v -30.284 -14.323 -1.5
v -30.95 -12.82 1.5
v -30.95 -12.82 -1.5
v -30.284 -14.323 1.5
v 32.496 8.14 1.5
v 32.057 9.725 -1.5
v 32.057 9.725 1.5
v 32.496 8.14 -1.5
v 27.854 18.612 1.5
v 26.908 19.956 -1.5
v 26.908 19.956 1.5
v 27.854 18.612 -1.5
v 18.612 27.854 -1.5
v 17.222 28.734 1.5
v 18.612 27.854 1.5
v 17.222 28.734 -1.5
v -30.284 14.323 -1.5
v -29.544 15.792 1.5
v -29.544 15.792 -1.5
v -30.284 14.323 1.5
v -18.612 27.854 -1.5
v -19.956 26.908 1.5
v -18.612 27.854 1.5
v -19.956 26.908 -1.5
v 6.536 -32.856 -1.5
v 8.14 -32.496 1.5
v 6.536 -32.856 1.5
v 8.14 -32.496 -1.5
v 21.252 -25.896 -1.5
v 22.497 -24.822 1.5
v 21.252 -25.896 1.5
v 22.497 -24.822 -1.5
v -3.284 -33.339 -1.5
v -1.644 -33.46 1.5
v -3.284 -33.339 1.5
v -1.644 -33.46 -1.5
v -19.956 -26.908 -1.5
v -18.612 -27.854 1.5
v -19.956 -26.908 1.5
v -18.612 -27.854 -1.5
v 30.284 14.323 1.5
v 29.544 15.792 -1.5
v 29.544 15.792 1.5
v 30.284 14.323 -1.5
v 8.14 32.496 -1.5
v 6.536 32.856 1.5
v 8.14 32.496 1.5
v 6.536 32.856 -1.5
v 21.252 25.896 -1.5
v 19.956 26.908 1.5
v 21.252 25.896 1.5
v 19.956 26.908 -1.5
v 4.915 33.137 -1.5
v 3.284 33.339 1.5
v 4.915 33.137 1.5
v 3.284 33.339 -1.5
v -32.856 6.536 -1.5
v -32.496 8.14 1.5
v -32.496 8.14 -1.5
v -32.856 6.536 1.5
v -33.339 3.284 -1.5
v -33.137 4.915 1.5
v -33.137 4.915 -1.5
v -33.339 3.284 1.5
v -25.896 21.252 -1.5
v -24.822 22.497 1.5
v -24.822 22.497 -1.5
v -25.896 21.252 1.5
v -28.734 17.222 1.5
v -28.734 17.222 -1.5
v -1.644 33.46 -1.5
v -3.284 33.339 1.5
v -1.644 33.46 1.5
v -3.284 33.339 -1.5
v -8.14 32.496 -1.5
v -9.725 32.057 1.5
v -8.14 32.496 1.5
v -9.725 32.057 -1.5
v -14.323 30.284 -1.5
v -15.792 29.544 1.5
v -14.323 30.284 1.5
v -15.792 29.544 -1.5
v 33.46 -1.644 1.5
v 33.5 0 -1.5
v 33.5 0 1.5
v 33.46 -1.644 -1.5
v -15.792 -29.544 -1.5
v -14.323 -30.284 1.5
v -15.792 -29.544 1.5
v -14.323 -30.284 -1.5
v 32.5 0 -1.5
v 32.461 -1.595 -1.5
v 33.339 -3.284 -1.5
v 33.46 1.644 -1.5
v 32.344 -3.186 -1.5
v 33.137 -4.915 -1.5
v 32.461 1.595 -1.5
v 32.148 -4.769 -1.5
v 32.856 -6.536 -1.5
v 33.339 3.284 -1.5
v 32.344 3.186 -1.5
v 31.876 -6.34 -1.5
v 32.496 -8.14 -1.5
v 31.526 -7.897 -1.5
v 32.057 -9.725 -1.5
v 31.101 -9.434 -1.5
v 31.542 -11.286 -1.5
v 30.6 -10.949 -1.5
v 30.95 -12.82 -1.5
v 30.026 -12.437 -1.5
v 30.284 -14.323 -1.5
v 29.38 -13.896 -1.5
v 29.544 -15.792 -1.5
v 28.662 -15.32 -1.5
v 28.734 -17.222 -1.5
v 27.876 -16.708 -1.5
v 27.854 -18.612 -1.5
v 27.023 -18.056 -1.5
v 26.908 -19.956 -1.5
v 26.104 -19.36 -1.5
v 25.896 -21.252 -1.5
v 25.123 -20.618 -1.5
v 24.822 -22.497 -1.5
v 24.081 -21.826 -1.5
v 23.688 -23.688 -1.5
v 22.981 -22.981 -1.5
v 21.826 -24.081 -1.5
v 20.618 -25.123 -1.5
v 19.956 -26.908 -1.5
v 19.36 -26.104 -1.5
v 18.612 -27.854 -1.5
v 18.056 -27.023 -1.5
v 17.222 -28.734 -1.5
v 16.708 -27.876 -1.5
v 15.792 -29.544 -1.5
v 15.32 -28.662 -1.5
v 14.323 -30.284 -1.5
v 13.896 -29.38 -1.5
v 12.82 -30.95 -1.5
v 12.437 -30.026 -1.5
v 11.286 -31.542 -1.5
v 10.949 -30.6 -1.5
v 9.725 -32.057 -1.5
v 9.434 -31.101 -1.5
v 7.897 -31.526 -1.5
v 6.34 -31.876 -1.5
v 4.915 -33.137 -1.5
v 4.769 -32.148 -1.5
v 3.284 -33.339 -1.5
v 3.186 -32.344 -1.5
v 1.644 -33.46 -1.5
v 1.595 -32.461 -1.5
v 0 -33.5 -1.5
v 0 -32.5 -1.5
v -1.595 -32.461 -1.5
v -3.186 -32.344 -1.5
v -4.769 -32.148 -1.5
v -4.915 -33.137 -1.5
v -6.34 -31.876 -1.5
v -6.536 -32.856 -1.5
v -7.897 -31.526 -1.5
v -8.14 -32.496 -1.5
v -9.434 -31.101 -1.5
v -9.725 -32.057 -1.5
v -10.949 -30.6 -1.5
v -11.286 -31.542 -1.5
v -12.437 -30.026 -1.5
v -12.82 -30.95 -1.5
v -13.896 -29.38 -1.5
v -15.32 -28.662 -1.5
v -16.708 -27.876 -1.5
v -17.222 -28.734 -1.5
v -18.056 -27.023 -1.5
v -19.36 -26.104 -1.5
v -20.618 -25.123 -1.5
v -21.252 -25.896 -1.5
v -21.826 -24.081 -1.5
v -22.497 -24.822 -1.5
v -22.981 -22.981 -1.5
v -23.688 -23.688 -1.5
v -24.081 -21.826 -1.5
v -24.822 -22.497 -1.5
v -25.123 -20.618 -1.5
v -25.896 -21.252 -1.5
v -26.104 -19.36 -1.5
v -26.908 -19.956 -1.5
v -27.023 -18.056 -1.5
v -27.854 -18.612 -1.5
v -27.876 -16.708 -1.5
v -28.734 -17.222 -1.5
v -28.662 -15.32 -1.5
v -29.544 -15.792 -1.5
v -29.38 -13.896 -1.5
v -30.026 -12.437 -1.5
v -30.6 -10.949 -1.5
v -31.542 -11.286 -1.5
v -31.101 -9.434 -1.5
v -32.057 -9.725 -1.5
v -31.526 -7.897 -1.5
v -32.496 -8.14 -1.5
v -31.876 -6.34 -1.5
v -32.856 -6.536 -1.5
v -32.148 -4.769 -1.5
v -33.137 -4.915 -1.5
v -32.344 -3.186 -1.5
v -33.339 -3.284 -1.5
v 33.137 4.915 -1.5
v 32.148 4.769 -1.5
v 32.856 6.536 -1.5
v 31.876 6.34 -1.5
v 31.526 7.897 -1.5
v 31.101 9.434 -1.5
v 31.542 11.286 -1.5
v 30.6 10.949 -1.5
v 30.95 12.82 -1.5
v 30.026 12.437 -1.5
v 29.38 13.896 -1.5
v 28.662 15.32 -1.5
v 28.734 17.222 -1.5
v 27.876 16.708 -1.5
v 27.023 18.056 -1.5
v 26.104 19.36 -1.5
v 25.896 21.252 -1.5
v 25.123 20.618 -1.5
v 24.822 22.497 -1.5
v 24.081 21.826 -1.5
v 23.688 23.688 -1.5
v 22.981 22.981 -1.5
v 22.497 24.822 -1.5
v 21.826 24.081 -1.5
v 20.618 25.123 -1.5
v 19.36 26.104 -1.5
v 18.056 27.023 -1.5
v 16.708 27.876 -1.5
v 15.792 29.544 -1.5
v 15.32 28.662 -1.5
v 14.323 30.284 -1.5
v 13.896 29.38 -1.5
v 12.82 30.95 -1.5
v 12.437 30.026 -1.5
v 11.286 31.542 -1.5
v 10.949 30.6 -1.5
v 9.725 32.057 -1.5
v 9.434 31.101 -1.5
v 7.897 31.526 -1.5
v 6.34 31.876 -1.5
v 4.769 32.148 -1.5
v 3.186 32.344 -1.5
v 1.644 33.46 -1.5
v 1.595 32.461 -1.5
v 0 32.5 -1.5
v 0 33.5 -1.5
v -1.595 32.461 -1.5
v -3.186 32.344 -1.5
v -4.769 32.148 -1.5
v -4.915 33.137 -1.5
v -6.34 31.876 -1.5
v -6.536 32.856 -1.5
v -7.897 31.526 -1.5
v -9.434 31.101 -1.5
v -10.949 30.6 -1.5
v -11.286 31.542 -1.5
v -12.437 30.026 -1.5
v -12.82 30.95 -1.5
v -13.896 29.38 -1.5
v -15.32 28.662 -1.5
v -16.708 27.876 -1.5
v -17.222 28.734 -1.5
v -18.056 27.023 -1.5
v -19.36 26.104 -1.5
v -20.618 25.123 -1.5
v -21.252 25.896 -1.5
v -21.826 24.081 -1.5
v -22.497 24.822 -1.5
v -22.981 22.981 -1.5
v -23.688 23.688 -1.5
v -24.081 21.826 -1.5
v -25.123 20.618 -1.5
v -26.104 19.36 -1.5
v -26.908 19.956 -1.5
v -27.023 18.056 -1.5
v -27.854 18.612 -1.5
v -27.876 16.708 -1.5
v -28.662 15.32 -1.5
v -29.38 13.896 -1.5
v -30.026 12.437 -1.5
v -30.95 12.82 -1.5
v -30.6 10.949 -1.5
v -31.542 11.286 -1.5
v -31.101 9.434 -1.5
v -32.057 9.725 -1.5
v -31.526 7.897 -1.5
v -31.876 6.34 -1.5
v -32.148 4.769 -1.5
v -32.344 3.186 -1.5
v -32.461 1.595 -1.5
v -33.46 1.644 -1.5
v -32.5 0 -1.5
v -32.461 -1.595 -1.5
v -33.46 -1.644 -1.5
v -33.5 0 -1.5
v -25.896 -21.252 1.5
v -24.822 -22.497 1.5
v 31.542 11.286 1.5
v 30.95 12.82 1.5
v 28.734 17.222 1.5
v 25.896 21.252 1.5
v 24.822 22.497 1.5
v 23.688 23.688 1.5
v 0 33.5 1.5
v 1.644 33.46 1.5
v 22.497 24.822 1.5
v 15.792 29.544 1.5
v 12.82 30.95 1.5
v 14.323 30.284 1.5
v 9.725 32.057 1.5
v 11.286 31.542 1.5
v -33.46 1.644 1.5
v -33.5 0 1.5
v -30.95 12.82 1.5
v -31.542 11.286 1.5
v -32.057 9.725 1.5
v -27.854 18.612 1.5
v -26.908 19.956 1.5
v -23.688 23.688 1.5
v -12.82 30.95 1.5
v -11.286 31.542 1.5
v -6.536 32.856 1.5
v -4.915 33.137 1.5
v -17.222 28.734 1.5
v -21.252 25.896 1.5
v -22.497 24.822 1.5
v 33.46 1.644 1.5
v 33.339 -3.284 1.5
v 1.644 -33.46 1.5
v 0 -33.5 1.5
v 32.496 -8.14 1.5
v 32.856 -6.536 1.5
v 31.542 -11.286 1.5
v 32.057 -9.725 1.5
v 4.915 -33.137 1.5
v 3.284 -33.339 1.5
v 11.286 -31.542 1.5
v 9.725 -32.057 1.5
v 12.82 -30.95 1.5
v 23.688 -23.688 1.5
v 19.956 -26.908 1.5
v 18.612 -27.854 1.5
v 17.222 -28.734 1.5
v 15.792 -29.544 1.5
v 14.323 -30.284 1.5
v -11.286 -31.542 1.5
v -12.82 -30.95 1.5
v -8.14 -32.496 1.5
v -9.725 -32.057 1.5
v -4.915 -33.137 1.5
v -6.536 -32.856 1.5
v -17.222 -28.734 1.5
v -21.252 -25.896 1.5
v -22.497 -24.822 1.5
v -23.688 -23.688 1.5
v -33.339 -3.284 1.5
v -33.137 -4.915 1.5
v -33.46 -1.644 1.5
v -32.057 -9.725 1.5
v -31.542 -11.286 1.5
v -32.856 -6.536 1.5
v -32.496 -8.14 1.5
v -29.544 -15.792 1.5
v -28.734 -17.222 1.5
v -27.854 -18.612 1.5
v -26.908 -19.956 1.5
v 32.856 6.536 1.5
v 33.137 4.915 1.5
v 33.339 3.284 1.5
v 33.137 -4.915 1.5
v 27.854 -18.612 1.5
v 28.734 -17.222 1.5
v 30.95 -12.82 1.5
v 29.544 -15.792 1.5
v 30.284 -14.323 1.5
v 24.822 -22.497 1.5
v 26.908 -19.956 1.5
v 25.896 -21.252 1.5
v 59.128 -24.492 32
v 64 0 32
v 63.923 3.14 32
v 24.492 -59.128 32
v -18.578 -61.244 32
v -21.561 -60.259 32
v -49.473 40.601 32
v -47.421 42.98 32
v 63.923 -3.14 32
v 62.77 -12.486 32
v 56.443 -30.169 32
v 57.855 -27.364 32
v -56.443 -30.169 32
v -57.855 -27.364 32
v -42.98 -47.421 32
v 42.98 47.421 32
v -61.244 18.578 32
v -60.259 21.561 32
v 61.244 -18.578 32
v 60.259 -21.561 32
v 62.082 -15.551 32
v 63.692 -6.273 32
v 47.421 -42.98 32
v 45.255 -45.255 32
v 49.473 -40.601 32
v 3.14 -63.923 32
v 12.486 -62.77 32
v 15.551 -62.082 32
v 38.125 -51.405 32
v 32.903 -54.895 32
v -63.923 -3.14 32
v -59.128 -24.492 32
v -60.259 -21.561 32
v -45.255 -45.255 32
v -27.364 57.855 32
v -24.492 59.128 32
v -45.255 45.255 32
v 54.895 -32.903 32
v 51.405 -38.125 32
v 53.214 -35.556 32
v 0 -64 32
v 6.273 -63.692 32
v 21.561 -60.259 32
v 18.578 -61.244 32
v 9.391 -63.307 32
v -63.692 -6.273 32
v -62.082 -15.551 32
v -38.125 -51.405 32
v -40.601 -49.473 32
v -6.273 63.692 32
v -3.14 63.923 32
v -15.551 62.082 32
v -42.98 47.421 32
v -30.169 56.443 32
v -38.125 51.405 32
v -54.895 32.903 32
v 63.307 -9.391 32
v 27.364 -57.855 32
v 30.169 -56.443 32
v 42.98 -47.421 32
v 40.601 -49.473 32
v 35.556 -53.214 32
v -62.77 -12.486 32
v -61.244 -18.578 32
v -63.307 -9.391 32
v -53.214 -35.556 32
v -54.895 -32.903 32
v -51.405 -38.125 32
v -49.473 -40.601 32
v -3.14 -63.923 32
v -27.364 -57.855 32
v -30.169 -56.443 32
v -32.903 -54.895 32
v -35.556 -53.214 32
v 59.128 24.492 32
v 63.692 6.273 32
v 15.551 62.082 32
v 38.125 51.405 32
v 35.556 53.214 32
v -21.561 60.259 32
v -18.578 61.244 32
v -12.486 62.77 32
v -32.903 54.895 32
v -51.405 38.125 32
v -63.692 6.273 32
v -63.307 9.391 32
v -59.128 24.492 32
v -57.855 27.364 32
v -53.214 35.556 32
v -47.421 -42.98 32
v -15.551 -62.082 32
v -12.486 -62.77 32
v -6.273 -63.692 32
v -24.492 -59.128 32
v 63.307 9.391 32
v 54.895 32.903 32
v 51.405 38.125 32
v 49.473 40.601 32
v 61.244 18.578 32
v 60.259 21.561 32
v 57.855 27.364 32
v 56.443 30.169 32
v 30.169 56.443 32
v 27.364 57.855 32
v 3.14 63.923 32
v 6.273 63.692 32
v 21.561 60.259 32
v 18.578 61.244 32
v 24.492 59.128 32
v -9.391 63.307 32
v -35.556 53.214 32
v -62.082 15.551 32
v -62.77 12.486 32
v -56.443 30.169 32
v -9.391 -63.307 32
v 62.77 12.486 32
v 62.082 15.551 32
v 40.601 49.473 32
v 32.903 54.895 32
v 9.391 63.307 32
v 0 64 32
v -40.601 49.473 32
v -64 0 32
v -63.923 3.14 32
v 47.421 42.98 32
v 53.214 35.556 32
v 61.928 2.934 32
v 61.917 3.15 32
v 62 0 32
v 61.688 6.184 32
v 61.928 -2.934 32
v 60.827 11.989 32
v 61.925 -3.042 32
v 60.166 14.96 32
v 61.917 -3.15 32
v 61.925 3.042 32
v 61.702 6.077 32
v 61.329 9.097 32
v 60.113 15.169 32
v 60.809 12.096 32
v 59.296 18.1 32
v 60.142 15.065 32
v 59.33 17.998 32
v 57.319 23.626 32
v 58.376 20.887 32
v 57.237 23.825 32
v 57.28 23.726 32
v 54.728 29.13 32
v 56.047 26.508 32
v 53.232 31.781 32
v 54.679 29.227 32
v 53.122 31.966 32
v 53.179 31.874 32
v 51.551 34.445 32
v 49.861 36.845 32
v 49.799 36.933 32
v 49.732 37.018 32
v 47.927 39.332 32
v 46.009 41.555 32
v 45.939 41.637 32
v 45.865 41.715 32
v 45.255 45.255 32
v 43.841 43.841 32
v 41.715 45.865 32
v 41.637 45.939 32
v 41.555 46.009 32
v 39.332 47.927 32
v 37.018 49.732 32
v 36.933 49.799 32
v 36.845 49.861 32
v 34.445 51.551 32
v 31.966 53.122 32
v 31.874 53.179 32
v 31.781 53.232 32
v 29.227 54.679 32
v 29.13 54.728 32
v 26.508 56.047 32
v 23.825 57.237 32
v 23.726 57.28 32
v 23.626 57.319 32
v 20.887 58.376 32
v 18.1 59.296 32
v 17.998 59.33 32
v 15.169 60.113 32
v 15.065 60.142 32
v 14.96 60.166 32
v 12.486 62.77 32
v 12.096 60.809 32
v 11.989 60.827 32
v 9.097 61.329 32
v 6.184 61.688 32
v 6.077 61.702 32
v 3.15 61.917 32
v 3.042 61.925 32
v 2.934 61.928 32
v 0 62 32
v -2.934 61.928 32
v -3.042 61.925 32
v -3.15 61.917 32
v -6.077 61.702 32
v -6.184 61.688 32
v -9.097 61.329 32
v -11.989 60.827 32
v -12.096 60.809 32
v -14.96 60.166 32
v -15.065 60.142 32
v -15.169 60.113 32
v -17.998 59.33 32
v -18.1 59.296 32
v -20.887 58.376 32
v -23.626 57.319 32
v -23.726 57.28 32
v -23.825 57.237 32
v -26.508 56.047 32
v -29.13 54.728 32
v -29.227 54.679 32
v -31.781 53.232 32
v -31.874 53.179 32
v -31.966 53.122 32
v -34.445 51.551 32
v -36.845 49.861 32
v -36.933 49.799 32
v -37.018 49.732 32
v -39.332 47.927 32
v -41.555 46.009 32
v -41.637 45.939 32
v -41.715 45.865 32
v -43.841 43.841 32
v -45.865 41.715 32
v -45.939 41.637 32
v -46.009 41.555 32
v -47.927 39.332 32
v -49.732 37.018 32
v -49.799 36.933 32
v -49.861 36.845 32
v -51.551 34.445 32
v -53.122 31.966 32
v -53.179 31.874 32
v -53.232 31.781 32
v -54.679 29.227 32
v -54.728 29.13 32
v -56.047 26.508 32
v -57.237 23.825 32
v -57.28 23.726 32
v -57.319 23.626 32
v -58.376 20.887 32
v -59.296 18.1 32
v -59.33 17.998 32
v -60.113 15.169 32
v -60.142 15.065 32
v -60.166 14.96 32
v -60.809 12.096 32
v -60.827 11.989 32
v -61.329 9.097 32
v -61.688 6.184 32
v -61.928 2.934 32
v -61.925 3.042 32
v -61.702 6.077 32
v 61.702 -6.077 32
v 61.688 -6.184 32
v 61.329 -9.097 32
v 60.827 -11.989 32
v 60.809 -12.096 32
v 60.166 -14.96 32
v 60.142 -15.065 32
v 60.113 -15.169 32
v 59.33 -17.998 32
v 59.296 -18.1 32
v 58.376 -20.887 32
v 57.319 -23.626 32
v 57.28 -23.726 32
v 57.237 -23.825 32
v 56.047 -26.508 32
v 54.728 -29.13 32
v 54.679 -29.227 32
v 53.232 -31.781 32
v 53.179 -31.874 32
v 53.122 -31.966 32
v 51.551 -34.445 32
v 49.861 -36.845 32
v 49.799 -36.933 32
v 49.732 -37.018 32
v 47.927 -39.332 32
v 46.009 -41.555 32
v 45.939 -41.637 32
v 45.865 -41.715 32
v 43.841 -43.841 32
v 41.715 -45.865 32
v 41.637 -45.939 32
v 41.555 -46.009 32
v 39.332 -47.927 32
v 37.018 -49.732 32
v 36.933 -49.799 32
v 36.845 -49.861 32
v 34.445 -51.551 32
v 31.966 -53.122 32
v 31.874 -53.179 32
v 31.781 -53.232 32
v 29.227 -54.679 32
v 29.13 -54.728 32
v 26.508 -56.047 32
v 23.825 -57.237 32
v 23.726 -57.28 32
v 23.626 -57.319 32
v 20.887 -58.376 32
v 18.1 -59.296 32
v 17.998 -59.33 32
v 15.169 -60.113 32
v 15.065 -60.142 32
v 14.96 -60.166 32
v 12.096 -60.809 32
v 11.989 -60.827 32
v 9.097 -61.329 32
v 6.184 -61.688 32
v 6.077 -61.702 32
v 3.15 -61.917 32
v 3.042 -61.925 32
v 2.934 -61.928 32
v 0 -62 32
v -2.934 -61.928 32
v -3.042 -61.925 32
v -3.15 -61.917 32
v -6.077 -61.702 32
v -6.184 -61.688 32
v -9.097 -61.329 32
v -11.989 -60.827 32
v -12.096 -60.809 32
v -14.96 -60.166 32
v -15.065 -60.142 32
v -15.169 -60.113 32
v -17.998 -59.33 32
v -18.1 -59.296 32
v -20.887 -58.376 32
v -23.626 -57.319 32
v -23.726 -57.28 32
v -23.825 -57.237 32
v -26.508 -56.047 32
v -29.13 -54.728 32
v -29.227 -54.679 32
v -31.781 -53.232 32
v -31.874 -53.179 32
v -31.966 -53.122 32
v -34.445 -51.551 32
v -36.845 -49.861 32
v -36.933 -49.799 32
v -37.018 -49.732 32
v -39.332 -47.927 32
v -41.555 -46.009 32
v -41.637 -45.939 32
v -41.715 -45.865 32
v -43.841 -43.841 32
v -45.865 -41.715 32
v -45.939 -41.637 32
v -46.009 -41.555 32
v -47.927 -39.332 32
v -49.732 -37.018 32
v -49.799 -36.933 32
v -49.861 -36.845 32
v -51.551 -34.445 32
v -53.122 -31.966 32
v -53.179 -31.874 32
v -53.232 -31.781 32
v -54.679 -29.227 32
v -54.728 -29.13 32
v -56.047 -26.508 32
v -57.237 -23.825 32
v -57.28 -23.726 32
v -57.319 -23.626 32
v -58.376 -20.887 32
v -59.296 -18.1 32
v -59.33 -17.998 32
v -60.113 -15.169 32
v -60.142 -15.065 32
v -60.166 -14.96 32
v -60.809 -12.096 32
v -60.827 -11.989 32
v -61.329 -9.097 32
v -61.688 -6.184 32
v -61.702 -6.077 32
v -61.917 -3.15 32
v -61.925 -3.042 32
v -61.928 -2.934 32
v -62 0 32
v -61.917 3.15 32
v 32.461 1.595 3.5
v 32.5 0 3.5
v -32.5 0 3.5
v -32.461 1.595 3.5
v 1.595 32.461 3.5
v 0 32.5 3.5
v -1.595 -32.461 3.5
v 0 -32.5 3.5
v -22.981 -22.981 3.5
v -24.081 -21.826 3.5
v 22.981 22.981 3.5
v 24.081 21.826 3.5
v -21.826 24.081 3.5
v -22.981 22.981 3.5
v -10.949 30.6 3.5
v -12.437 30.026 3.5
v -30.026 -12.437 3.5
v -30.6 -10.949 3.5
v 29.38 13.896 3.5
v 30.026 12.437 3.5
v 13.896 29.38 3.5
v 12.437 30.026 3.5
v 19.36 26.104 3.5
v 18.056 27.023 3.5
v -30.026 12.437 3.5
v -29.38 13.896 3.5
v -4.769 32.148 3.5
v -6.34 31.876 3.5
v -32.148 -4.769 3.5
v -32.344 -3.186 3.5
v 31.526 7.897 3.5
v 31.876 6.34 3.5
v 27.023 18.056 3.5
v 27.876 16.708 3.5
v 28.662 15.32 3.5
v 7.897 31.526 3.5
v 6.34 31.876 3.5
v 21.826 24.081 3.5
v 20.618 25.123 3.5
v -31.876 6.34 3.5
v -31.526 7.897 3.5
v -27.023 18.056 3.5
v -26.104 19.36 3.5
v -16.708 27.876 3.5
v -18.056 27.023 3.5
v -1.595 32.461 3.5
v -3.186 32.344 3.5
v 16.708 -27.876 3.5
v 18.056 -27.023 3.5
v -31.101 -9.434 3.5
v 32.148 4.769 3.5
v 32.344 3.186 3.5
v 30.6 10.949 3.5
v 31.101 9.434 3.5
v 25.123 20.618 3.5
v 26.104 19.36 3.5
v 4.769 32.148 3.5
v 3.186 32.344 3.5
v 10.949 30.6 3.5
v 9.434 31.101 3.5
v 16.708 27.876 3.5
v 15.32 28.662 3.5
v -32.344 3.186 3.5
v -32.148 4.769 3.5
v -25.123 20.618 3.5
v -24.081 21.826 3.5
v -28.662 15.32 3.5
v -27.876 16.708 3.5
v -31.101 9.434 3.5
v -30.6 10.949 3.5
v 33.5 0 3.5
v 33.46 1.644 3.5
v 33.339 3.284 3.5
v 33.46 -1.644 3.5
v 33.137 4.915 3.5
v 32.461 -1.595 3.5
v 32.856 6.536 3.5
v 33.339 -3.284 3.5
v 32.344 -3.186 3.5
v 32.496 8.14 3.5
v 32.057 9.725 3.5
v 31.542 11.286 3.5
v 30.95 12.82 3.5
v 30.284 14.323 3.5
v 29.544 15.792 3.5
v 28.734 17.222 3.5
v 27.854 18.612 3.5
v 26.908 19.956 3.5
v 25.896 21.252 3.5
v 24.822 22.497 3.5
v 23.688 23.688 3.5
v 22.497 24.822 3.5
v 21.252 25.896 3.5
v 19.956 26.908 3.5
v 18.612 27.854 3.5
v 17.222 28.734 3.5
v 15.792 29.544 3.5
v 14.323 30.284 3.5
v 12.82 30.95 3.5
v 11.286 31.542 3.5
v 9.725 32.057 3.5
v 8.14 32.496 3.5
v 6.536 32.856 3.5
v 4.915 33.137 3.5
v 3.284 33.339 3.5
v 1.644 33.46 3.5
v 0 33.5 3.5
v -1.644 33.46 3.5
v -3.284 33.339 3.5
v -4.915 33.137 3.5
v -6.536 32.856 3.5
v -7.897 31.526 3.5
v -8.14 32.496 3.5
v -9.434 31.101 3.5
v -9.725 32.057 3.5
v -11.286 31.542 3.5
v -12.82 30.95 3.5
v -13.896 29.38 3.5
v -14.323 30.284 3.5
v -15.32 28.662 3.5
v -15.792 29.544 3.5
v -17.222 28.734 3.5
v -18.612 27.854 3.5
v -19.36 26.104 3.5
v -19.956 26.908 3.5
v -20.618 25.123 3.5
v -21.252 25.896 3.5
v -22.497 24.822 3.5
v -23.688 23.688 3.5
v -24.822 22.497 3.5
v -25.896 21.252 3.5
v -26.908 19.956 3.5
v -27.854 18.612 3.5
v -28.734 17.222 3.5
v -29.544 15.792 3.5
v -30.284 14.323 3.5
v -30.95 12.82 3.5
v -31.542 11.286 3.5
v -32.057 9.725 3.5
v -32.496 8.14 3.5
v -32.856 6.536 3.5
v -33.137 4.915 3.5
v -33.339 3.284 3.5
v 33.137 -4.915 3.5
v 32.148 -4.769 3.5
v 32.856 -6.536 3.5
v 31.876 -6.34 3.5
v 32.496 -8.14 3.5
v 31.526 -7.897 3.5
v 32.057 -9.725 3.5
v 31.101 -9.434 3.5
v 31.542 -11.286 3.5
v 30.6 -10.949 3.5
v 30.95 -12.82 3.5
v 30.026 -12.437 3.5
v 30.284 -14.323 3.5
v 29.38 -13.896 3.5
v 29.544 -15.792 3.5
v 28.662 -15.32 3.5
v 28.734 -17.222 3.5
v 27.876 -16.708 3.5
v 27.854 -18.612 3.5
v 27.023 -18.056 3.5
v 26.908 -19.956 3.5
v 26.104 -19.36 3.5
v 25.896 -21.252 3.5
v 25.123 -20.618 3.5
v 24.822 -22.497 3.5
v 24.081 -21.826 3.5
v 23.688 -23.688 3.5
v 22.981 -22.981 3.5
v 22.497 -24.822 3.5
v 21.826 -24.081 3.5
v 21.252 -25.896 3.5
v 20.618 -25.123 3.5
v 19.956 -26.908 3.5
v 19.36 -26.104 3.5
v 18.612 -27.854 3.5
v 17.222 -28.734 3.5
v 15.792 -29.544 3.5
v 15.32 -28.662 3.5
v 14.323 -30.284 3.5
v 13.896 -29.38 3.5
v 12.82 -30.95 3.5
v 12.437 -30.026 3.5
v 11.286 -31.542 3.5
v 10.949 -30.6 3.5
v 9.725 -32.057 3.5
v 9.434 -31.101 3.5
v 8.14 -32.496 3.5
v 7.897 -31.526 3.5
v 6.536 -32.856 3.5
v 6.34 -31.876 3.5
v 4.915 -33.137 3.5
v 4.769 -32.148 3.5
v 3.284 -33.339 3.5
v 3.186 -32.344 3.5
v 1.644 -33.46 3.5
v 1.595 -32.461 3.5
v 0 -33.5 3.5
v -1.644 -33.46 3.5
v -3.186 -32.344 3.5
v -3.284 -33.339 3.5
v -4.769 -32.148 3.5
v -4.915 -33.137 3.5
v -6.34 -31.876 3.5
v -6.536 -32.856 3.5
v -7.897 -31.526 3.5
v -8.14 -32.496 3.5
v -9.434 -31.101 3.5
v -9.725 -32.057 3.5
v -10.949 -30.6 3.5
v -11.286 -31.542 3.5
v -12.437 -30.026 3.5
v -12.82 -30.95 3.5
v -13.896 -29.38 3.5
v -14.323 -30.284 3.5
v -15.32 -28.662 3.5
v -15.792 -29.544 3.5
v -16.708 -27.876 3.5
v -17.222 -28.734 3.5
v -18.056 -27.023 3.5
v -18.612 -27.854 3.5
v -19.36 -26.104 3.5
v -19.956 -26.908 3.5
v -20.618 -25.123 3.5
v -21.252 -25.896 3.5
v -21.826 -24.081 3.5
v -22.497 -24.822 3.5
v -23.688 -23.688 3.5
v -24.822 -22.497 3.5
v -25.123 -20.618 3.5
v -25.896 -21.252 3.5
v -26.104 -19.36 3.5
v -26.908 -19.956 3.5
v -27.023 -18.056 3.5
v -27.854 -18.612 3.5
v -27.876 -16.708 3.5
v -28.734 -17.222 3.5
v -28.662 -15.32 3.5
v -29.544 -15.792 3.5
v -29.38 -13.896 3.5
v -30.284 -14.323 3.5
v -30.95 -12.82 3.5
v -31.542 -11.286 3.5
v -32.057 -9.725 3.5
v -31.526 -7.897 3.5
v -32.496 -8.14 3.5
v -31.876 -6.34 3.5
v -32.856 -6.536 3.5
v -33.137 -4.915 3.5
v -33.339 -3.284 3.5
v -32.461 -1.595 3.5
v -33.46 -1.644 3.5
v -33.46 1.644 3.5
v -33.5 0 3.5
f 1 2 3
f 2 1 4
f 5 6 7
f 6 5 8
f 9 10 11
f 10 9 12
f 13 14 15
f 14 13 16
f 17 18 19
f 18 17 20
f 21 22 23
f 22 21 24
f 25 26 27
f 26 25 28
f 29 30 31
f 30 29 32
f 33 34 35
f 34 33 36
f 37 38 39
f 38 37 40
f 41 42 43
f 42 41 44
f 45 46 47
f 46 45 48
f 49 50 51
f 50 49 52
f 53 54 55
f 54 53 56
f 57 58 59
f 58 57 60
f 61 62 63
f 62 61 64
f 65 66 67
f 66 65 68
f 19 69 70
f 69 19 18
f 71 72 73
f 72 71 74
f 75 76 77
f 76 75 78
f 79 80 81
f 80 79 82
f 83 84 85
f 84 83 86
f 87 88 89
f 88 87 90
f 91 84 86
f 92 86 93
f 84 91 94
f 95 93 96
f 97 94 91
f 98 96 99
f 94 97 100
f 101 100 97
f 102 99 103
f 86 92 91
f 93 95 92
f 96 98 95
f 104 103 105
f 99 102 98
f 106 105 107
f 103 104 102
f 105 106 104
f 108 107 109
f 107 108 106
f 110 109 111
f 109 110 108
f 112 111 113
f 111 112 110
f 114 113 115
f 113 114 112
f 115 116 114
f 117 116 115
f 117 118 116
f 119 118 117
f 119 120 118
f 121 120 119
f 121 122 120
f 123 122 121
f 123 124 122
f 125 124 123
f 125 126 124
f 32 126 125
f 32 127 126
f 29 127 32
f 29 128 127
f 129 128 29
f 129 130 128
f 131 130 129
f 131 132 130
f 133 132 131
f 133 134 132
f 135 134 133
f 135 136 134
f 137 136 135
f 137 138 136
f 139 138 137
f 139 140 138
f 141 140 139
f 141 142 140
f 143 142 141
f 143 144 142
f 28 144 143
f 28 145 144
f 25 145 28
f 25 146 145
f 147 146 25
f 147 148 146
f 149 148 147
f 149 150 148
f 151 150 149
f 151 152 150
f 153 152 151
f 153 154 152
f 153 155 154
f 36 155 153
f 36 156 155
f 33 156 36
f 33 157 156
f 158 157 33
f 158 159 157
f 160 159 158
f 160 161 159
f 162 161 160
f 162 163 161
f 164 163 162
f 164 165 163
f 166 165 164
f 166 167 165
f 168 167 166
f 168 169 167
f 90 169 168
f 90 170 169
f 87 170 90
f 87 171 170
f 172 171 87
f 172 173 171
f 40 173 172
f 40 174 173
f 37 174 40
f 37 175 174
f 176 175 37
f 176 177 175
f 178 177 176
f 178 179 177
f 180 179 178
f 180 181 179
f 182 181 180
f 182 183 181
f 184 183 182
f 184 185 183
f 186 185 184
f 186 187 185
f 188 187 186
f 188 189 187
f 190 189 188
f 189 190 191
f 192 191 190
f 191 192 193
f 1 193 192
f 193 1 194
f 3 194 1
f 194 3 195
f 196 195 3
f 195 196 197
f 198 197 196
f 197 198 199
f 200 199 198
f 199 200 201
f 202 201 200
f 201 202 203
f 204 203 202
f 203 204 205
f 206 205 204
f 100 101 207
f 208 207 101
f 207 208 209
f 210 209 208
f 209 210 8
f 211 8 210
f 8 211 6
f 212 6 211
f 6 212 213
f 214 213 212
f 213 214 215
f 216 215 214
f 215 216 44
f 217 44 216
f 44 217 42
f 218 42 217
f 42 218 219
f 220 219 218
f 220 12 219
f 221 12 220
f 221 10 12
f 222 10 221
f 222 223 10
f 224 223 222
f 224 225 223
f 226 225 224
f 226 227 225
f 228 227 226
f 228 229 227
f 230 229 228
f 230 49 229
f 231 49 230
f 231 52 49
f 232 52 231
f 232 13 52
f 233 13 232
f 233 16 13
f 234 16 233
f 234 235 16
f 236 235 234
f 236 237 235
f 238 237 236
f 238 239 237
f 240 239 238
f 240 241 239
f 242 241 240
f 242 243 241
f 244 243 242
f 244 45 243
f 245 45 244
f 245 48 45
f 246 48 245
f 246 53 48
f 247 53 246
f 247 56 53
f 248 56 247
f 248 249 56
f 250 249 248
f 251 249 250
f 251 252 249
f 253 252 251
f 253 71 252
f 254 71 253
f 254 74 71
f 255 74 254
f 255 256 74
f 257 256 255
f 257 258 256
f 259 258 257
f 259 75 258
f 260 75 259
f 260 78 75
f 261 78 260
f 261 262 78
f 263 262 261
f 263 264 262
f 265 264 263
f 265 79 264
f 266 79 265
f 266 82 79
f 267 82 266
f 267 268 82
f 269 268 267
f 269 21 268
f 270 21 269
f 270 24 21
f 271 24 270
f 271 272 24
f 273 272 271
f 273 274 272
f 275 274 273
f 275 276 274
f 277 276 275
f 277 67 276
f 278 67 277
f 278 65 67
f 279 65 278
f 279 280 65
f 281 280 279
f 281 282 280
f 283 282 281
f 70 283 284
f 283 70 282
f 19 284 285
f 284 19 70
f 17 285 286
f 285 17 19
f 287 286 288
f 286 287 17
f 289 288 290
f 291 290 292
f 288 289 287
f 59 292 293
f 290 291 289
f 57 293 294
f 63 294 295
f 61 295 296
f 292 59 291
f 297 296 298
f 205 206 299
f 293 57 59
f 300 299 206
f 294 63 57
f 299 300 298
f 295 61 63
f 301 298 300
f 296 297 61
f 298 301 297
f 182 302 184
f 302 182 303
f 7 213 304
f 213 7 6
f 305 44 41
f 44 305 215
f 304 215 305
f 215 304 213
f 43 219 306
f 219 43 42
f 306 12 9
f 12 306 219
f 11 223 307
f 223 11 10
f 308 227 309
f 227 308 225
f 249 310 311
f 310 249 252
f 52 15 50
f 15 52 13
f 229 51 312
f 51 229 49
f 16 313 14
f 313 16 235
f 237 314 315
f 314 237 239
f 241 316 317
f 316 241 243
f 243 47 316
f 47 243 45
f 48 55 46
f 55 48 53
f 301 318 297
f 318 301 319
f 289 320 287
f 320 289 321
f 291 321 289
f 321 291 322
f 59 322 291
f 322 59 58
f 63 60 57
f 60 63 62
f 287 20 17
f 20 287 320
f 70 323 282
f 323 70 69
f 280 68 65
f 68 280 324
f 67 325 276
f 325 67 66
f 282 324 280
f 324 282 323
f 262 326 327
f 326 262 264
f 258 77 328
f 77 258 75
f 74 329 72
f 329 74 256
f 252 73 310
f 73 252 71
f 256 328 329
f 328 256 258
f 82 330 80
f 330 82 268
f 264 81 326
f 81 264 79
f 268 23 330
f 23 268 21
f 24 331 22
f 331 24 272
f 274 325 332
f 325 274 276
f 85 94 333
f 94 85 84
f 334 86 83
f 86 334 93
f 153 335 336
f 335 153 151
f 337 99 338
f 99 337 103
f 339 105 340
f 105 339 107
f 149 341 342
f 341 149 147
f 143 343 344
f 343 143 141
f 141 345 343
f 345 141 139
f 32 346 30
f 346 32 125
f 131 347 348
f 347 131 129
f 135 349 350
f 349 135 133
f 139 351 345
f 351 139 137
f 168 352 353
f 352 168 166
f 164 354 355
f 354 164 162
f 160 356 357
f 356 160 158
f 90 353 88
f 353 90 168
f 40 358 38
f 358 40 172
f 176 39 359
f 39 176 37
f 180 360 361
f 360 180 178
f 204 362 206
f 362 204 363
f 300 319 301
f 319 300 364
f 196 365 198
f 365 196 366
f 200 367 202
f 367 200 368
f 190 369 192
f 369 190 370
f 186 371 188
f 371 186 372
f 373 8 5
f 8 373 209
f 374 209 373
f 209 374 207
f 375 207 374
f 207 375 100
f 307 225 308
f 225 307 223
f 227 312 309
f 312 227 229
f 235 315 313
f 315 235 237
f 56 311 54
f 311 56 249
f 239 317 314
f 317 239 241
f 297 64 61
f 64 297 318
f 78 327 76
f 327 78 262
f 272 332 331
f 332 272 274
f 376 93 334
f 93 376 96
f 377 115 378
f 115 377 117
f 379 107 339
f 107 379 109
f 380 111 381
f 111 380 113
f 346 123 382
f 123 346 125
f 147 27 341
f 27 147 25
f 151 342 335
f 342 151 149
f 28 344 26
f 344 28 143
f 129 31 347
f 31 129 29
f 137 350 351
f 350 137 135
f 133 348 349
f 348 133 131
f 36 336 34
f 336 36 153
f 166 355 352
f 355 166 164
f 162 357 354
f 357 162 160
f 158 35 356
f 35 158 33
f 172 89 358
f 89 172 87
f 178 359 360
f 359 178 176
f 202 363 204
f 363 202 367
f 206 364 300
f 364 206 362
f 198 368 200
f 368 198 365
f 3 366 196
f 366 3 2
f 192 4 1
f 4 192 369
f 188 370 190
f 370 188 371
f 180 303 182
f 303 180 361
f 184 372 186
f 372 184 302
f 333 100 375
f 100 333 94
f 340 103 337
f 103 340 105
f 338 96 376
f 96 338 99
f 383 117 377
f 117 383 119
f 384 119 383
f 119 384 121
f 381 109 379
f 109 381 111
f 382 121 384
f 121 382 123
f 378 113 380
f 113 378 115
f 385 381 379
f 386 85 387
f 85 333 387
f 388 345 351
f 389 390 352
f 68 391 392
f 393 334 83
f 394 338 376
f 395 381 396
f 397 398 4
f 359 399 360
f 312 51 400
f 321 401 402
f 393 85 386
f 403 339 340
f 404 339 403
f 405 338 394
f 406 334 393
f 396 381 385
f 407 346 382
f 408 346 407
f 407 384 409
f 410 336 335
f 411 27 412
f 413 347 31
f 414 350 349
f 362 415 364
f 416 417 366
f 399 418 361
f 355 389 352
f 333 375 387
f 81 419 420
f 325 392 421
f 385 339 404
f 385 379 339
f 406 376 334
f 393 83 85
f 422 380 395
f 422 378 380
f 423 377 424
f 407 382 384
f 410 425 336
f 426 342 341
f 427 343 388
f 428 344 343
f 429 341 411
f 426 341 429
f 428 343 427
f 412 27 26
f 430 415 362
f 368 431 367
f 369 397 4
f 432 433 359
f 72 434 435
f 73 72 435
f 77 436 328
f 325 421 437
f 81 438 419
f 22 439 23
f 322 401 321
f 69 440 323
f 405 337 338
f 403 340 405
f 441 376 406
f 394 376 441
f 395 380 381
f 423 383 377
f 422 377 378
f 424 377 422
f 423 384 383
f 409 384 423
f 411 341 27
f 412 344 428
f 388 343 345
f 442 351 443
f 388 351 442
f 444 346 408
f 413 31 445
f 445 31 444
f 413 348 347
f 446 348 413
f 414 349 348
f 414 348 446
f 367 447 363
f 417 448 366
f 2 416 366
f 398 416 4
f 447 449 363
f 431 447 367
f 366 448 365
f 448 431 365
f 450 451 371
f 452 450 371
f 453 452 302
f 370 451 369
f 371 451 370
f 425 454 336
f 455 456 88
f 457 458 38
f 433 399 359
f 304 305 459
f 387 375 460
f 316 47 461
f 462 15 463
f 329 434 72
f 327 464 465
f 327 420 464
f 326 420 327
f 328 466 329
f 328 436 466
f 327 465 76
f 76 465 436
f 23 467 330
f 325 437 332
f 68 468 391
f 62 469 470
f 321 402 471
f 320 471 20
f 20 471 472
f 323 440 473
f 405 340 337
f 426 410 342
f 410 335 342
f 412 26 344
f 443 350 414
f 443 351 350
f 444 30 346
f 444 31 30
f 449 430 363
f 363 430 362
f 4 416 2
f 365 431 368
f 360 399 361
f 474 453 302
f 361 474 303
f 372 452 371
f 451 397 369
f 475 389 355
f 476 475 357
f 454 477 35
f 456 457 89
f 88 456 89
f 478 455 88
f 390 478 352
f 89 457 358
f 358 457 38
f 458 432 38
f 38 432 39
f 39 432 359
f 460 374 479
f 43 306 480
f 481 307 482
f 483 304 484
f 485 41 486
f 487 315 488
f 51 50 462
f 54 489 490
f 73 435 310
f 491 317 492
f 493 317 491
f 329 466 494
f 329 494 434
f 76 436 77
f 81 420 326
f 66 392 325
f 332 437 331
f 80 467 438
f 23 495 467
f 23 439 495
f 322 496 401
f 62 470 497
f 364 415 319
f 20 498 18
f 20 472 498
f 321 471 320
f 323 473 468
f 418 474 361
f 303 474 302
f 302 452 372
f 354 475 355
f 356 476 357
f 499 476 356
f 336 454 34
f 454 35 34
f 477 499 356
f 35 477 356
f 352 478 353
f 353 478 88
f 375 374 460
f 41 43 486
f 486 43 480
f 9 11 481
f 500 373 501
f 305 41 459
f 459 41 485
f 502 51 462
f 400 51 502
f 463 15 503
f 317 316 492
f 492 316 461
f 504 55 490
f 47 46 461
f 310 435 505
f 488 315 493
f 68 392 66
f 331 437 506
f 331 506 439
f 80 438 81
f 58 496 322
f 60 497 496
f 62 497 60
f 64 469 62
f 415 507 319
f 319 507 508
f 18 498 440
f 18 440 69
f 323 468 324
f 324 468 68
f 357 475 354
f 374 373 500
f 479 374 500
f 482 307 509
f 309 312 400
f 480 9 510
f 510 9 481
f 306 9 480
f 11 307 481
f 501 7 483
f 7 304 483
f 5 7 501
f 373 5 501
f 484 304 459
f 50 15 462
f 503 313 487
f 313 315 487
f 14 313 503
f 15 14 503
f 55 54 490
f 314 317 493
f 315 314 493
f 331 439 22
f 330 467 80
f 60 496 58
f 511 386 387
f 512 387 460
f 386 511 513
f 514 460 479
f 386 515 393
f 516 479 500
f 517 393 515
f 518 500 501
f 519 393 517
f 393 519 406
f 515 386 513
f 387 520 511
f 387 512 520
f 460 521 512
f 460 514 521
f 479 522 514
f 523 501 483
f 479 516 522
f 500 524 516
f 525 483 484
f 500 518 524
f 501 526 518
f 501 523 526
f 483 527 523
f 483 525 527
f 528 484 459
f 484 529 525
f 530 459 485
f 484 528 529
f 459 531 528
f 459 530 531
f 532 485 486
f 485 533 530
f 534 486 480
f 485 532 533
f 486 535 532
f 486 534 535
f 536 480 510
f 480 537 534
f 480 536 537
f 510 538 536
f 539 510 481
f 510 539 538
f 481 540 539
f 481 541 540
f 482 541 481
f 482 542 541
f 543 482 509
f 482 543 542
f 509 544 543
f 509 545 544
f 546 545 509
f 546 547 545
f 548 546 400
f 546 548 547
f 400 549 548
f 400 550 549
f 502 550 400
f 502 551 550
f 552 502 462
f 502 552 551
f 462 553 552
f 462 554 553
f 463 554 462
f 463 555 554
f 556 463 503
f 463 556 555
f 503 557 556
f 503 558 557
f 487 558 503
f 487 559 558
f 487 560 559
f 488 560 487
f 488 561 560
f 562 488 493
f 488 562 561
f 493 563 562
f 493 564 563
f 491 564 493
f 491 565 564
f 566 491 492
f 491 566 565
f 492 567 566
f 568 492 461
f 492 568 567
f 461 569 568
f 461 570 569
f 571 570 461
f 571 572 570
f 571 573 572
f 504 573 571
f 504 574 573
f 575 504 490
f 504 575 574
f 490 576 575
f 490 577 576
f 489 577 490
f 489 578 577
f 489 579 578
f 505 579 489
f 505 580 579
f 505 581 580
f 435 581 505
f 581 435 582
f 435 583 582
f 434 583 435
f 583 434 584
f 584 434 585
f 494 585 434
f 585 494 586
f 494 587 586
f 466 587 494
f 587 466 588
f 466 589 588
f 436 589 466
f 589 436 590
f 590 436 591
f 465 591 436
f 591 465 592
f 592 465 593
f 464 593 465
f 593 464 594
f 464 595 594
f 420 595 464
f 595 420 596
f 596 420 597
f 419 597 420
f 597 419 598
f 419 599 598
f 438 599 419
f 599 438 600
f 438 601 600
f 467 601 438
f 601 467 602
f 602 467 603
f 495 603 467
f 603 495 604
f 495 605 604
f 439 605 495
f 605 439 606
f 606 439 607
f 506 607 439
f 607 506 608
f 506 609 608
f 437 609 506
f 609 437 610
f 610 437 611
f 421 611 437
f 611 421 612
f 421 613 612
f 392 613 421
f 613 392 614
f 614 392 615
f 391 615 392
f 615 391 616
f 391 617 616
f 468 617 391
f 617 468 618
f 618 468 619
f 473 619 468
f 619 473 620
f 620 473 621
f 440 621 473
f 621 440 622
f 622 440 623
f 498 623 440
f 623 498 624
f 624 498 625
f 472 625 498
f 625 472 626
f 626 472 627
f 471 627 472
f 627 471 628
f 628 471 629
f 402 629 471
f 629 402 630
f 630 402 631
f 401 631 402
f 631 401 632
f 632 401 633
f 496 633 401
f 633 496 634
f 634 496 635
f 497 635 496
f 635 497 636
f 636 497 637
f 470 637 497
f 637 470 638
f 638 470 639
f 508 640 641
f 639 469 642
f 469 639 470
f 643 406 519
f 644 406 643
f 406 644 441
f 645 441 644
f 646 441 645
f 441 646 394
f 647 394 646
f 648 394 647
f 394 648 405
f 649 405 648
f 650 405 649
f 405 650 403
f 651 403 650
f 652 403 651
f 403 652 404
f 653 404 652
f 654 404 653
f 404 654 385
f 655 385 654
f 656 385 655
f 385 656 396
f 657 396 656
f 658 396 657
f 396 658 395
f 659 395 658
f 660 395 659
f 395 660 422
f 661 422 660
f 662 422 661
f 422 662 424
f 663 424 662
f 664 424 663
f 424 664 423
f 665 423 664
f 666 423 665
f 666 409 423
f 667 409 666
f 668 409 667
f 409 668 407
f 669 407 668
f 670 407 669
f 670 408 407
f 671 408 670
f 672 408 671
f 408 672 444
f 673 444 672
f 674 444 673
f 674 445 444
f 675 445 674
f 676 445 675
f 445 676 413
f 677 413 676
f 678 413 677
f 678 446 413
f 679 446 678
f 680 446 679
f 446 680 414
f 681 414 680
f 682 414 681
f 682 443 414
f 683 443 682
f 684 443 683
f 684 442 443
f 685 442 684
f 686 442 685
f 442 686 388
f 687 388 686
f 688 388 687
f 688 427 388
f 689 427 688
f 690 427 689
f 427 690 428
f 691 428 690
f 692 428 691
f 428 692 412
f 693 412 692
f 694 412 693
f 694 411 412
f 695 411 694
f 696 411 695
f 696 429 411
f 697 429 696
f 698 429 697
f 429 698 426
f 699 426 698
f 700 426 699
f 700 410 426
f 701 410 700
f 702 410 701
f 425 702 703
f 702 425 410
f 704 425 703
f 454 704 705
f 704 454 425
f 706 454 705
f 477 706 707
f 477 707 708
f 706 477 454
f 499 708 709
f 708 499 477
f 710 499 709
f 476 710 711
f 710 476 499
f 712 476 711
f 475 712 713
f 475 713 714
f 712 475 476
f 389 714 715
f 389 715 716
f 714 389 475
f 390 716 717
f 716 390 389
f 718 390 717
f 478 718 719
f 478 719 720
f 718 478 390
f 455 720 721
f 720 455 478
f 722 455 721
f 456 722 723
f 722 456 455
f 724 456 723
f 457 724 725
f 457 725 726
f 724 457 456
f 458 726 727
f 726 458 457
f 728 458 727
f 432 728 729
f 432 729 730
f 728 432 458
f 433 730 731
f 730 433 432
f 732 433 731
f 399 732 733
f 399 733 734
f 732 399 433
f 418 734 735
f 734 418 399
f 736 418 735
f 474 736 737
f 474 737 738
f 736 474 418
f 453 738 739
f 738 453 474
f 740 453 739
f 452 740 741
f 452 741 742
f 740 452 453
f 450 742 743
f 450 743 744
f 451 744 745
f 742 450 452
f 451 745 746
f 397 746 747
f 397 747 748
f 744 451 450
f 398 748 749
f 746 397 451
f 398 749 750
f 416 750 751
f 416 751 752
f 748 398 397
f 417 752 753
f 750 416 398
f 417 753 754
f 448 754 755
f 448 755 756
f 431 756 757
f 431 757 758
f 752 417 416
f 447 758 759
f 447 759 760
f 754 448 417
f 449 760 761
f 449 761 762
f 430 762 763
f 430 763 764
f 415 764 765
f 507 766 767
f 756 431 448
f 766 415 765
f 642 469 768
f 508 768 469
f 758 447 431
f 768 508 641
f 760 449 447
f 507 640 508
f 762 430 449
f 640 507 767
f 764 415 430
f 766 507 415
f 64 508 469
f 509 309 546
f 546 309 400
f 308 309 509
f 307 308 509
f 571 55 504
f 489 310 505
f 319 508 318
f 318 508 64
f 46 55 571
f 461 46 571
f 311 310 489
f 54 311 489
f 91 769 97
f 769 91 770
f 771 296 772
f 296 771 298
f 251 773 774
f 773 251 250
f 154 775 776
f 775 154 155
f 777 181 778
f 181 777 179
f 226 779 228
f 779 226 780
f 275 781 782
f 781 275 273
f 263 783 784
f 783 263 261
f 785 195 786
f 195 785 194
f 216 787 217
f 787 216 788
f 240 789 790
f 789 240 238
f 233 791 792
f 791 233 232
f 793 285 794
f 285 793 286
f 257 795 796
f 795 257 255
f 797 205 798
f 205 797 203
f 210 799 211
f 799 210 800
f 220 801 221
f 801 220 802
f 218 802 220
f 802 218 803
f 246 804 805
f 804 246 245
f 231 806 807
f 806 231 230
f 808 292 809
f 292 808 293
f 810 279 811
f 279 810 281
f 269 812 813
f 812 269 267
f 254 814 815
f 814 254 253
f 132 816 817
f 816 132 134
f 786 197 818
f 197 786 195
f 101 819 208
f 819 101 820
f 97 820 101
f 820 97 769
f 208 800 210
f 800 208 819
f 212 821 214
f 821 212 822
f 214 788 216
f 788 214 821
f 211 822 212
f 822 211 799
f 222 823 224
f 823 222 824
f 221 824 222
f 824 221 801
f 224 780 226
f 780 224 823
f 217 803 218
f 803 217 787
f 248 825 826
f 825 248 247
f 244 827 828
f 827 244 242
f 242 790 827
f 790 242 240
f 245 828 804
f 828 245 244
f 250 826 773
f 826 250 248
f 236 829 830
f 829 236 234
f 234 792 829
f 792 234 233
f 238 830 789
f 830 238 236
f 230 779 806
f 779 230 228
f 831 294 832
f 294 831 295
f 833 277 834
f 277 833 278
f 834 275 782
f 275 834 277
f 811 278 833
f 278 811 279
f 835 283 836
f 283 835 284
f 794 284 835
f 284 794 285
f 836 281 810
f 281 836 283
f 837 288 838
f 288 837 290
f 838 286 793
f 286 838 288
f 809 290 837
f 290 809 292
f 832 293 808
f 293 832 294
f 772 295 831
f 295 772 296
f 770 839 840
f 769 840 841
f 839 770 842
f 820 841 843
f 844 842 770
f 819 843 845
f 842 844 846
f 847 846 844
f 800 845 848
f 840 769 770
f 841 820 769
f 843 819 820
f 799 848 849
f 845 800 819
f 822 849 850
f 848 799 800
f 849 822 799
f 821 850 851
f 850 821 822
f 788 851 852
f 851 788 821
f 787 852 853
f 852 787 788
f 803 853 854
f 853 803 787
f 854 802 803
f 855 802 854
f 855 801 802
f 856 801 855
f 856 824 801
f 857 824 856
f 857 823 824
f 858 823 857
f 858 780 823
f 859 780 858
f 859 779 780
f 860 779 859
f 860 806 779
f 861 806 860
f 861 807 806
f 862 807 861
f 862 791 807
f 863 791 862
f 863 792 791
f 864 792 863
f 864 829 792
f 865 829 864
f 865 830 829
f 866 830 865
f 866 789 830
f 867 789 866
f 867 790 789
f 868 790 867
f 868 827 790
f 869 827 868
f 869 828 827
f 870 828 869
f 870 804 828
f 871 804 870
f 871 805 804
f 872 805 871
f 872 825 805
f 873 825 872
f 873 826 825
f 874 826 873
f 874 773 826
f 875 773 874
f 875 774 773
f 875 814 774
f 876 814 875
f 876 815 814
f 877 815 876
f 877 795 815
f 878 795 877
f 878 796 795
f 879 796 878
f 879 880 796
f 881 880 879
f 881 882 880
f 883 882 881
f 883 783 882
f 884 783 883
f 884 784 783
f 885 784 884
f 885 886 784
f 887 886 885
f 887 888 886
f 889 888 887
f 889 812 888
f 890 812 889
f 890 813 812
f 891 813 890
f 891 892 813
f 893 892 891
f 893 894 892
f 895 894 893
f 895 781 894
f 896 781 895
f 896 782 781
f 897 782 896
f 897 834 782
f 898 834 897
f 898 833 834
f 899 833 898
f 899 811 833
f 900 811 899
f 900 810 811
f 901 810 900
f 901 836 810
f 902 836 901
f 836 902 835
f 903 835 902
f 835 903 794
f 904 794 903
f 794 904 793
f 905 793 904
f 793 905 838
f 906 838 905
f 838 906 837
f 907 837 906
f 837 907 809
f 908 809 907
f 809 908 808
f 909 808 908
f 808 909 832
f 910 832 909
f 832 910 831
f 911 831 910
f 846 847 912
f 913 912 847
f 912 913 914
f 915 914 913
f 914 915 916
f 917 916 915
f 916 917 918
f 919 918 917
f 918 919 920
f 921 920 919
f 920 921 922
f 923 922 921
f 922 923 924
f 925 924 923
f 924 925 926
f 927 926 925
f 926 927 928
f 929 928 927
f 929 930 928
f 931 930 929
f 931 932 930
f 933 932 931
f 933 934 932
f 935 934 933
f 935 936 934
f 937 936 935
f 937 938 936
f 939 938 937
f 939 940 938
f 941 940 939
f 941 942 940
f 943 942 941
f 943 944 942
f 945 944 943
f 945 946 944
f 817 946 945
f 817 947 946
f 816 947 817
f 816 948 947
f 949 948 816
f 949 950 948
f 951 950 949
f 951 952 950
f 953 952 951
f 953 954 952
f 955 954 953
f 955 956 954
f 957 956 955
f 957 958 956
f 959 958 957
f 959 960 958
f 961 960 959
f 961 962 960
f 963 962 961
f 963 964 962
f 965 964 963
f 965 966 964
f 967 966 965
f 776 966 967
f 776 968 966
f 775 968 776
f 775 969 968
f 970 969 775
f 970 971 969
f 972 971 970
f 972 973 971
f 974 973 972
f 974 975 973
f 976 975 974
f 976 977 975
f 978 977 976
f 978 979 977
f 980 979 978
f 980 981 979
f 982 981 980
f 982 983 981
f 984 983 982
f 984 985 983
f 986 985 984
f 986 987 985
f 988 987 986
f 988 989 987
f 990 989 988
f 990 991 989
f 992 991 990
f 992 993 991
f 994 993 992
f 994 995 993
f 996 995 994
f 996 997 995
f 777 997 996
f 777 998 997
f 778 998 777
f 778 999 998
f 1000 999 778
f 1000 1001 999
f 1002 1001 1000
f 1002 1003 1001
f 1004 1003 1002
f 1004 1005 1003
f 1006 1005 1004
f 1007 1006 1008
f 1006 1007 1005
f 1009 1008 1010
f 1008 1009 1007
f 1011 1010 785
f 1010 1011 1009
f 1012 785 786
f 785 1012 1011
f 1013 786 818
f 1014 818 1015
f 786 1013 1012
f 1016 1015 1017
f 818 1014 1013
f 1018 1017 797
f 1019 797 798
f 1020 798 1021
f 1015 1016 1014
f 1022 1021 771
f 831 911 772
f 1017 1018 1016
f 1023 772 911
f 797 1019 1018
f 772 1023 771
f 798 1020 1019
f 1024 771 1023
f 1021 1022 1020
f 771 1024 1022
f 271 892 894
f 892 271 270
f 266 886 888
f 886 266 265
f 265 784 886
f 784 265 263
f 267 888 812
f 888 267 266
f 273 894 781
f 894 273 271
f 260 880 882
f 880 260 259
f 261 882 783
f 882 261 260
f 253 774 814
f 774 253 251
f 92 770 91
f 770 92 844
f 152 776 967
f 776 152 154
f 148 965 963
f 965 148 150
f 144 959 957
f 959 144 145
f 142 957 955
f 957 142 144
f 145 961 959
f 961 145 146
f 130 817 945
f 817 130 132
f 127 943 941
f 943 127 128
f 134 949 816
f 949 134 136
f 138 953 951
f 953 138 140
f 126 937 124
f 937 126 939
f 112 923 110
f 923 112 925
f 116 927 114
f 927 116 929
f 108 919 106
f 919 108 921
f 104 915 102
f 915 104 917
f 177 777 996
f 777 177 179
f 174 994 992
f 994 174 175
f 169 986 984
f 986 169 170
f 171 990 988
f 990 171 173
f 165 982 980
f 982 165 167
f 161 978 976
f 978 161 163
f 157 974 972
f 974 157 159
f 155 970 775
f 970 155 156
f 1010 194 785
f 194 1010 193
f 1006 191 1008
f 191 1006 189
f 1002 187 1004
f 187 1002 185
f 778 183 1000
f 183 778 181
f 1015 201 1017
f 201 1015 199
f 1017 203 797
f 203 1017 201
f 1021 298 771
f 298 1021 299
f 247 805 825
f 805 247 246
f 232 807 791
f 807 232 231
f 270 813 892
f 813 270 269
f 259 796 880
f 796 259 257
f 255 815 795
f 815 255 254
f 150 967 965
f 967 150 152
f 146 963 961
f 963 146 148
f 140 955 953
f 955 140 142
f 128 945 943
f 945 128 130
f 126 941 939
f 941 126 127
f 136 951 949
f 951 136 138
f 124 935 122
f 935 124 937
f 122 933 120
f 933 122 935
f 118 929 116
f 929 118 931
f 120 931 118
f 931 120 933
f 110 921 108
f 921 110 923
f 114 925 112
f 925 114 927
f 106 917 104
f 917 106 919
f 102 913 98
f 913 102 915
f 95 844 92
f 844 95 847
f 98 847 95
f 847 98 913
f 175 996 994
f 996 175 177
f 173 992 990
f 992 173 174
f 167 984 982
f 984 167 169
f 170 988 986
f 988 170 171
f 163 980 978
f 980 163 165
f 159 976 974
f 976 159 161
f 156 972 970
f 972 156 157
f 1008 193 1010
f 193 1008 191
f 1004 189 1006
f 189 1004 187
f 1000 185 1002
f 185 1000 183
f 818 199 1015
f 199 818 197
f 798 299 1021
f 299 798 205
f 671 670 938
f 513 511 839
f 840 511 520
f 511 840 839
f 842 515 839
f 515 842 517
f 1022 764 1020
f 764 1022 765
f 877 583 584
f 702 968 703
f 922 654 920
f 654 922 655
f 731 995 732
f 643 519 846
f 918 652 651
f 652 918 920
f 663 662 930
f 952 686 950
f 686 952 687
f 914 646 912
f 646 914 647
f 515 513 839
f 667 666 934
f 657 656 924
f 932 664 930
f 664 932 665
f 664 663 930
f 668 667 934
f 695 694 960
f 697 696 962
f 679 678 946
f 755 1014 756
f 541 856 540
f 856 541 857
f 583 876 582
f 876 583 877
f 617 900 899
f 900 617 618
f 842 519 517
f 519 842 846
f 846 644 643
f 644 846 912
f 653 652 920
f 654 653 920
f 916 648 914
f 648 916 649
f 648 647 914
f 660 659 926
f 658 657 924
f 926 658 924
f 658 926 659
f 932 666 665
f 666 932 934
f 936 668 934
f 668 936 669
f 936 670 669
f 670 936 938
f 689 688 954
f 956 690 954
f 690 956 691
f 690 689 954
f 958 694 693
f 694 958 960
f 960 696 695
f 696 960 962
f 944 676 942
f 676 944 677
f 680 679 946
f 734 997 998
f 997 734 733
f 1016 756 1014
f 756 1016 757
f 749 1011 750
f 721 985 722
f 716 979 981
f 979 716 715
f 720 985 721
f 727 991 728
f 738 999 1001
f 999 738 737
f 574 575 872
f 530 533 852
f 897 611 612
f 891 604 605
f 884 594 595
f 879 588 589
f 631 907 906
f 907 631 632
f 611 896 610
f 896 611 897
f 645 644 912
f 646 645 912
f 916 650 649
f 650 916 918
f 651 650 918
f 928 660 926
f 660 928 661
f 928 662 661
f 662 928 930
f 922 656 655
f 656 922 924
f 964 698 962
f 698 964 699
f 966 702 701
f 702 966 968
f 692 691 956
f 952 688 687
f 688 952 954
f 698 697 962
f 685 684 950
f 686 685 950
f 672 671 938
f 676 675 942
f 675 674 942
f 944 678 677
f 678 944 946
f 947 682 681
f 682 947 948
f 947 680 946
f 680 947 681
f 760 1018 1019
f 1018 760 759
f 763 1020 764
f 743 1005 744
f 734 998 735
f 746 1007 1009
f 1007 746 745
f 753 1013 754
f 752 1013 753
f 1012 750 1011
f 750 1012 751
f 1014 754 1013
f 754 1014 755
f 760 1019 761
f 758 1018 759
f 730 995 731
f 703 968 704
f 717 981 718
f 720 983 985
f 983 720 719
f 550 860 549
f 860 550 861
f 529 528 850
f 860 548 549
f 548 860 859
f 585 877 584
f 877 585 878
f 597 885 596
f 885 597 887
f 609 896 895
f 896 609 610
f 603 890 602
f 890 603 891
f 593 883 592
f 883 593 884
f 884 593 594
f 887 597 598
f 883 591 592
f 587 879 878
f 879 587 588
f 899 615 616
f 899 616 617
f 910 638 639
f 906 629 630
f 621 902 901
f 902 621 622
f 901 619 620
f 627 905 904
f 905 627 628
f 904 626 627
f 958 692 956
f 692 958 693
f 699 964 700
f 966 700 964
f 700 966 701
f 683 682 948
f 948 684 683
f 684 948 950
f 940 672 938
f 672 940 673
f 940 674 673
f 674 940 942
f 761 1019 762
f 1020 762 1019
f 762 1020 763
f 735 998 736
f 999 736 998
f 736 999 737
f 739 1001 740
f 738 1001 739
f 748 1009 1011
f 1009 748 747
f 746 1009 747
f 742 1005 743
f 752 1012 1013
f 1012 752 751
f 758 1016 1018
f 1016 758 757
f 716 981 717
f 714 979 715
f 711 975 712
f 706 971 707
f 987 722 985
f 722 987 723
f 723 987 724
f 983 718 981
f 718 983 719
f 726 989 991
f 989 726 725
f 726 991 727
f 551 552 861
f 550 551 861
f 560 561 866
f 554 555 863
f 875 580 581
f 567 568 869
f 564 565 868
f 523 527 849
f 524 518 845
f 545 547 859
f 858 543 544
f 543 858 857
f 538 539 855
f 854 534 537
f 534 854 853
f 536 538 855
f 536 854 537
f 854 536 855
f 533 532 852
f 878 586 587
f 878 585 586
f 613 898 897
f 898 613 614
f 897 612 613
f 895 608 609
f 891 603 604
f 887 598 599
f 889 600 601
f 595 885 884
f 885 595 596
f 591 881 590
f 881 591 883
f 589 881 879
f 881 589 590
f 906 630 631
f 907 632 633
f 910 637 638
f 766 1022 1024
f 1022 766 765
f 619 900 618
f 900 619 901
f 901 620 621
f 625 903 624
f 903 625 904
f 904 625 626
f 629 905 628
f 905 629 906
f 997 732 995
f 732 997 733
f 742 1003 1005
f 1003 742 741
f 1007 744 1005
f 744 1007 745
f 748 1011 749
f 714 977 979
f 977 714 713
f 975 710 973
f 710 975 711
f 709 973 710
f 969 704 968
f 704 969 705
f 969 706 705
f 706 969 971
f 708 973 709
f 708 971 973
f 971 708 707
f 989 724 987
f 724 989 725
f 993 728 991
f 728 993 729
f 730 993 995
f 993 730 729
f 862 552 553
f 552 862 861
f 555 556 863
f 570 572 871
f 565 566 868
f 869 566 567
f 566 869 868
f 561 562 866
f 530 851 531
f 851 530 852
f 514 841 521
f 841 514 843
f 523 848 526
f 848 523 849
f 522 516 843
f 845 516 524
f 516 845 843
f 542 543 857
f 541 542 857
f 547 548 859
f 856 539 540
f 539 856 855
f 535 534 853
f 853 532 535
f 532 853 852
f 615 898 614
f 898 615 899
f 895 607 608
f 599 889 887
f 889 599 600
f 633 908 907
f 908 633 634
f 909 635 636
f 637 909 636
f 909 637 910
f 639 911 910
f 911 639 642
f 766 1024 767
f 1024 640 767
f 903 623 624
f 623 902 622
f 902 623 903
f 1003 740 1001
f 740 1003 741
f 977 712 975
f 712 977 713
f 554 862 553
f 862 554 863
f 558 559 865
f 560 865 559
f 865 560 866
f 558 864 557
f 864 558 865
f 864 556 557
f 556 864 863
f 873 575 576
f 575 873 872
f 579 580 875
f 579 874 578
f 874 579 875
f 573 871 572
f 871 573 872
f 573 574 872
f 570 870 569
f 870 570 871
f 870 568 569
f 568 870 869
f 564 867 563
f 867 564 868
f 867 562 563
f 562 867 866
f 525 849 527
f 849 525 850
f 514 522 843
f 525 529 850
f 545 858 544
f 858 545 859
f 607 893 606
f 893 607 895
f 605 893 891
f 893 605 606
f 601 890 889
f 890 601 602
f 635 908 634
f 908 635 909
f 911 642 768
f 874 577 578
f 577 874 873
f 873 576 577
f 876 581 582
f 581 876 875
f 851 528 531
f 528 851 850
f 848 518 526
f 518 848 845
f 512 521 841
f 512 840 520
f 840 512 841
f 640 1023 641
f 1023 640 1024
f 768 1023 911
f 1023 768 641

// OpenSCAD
heightCylinder=30.5;
heightBoard=3;
fn=128;

difference(){
  union(){
    cylinder($fn=fn, d=67, h=heightBoard, center=true);
    translate([0,0,(heightBoard+heightCylinder)/2])cylinder($fn=fn, d1=67, d2=128, h=heightCylinder, center=true);
  }
  translate([0,0,1])cylinder($fn=fn, d=65, h=5, center=true);
  translate([0,0,2+(heightBoard+heightCylinder)/2])cylinder($fn=fn, d1=67, d2=128, h=heightCylinder, center=true);
}
